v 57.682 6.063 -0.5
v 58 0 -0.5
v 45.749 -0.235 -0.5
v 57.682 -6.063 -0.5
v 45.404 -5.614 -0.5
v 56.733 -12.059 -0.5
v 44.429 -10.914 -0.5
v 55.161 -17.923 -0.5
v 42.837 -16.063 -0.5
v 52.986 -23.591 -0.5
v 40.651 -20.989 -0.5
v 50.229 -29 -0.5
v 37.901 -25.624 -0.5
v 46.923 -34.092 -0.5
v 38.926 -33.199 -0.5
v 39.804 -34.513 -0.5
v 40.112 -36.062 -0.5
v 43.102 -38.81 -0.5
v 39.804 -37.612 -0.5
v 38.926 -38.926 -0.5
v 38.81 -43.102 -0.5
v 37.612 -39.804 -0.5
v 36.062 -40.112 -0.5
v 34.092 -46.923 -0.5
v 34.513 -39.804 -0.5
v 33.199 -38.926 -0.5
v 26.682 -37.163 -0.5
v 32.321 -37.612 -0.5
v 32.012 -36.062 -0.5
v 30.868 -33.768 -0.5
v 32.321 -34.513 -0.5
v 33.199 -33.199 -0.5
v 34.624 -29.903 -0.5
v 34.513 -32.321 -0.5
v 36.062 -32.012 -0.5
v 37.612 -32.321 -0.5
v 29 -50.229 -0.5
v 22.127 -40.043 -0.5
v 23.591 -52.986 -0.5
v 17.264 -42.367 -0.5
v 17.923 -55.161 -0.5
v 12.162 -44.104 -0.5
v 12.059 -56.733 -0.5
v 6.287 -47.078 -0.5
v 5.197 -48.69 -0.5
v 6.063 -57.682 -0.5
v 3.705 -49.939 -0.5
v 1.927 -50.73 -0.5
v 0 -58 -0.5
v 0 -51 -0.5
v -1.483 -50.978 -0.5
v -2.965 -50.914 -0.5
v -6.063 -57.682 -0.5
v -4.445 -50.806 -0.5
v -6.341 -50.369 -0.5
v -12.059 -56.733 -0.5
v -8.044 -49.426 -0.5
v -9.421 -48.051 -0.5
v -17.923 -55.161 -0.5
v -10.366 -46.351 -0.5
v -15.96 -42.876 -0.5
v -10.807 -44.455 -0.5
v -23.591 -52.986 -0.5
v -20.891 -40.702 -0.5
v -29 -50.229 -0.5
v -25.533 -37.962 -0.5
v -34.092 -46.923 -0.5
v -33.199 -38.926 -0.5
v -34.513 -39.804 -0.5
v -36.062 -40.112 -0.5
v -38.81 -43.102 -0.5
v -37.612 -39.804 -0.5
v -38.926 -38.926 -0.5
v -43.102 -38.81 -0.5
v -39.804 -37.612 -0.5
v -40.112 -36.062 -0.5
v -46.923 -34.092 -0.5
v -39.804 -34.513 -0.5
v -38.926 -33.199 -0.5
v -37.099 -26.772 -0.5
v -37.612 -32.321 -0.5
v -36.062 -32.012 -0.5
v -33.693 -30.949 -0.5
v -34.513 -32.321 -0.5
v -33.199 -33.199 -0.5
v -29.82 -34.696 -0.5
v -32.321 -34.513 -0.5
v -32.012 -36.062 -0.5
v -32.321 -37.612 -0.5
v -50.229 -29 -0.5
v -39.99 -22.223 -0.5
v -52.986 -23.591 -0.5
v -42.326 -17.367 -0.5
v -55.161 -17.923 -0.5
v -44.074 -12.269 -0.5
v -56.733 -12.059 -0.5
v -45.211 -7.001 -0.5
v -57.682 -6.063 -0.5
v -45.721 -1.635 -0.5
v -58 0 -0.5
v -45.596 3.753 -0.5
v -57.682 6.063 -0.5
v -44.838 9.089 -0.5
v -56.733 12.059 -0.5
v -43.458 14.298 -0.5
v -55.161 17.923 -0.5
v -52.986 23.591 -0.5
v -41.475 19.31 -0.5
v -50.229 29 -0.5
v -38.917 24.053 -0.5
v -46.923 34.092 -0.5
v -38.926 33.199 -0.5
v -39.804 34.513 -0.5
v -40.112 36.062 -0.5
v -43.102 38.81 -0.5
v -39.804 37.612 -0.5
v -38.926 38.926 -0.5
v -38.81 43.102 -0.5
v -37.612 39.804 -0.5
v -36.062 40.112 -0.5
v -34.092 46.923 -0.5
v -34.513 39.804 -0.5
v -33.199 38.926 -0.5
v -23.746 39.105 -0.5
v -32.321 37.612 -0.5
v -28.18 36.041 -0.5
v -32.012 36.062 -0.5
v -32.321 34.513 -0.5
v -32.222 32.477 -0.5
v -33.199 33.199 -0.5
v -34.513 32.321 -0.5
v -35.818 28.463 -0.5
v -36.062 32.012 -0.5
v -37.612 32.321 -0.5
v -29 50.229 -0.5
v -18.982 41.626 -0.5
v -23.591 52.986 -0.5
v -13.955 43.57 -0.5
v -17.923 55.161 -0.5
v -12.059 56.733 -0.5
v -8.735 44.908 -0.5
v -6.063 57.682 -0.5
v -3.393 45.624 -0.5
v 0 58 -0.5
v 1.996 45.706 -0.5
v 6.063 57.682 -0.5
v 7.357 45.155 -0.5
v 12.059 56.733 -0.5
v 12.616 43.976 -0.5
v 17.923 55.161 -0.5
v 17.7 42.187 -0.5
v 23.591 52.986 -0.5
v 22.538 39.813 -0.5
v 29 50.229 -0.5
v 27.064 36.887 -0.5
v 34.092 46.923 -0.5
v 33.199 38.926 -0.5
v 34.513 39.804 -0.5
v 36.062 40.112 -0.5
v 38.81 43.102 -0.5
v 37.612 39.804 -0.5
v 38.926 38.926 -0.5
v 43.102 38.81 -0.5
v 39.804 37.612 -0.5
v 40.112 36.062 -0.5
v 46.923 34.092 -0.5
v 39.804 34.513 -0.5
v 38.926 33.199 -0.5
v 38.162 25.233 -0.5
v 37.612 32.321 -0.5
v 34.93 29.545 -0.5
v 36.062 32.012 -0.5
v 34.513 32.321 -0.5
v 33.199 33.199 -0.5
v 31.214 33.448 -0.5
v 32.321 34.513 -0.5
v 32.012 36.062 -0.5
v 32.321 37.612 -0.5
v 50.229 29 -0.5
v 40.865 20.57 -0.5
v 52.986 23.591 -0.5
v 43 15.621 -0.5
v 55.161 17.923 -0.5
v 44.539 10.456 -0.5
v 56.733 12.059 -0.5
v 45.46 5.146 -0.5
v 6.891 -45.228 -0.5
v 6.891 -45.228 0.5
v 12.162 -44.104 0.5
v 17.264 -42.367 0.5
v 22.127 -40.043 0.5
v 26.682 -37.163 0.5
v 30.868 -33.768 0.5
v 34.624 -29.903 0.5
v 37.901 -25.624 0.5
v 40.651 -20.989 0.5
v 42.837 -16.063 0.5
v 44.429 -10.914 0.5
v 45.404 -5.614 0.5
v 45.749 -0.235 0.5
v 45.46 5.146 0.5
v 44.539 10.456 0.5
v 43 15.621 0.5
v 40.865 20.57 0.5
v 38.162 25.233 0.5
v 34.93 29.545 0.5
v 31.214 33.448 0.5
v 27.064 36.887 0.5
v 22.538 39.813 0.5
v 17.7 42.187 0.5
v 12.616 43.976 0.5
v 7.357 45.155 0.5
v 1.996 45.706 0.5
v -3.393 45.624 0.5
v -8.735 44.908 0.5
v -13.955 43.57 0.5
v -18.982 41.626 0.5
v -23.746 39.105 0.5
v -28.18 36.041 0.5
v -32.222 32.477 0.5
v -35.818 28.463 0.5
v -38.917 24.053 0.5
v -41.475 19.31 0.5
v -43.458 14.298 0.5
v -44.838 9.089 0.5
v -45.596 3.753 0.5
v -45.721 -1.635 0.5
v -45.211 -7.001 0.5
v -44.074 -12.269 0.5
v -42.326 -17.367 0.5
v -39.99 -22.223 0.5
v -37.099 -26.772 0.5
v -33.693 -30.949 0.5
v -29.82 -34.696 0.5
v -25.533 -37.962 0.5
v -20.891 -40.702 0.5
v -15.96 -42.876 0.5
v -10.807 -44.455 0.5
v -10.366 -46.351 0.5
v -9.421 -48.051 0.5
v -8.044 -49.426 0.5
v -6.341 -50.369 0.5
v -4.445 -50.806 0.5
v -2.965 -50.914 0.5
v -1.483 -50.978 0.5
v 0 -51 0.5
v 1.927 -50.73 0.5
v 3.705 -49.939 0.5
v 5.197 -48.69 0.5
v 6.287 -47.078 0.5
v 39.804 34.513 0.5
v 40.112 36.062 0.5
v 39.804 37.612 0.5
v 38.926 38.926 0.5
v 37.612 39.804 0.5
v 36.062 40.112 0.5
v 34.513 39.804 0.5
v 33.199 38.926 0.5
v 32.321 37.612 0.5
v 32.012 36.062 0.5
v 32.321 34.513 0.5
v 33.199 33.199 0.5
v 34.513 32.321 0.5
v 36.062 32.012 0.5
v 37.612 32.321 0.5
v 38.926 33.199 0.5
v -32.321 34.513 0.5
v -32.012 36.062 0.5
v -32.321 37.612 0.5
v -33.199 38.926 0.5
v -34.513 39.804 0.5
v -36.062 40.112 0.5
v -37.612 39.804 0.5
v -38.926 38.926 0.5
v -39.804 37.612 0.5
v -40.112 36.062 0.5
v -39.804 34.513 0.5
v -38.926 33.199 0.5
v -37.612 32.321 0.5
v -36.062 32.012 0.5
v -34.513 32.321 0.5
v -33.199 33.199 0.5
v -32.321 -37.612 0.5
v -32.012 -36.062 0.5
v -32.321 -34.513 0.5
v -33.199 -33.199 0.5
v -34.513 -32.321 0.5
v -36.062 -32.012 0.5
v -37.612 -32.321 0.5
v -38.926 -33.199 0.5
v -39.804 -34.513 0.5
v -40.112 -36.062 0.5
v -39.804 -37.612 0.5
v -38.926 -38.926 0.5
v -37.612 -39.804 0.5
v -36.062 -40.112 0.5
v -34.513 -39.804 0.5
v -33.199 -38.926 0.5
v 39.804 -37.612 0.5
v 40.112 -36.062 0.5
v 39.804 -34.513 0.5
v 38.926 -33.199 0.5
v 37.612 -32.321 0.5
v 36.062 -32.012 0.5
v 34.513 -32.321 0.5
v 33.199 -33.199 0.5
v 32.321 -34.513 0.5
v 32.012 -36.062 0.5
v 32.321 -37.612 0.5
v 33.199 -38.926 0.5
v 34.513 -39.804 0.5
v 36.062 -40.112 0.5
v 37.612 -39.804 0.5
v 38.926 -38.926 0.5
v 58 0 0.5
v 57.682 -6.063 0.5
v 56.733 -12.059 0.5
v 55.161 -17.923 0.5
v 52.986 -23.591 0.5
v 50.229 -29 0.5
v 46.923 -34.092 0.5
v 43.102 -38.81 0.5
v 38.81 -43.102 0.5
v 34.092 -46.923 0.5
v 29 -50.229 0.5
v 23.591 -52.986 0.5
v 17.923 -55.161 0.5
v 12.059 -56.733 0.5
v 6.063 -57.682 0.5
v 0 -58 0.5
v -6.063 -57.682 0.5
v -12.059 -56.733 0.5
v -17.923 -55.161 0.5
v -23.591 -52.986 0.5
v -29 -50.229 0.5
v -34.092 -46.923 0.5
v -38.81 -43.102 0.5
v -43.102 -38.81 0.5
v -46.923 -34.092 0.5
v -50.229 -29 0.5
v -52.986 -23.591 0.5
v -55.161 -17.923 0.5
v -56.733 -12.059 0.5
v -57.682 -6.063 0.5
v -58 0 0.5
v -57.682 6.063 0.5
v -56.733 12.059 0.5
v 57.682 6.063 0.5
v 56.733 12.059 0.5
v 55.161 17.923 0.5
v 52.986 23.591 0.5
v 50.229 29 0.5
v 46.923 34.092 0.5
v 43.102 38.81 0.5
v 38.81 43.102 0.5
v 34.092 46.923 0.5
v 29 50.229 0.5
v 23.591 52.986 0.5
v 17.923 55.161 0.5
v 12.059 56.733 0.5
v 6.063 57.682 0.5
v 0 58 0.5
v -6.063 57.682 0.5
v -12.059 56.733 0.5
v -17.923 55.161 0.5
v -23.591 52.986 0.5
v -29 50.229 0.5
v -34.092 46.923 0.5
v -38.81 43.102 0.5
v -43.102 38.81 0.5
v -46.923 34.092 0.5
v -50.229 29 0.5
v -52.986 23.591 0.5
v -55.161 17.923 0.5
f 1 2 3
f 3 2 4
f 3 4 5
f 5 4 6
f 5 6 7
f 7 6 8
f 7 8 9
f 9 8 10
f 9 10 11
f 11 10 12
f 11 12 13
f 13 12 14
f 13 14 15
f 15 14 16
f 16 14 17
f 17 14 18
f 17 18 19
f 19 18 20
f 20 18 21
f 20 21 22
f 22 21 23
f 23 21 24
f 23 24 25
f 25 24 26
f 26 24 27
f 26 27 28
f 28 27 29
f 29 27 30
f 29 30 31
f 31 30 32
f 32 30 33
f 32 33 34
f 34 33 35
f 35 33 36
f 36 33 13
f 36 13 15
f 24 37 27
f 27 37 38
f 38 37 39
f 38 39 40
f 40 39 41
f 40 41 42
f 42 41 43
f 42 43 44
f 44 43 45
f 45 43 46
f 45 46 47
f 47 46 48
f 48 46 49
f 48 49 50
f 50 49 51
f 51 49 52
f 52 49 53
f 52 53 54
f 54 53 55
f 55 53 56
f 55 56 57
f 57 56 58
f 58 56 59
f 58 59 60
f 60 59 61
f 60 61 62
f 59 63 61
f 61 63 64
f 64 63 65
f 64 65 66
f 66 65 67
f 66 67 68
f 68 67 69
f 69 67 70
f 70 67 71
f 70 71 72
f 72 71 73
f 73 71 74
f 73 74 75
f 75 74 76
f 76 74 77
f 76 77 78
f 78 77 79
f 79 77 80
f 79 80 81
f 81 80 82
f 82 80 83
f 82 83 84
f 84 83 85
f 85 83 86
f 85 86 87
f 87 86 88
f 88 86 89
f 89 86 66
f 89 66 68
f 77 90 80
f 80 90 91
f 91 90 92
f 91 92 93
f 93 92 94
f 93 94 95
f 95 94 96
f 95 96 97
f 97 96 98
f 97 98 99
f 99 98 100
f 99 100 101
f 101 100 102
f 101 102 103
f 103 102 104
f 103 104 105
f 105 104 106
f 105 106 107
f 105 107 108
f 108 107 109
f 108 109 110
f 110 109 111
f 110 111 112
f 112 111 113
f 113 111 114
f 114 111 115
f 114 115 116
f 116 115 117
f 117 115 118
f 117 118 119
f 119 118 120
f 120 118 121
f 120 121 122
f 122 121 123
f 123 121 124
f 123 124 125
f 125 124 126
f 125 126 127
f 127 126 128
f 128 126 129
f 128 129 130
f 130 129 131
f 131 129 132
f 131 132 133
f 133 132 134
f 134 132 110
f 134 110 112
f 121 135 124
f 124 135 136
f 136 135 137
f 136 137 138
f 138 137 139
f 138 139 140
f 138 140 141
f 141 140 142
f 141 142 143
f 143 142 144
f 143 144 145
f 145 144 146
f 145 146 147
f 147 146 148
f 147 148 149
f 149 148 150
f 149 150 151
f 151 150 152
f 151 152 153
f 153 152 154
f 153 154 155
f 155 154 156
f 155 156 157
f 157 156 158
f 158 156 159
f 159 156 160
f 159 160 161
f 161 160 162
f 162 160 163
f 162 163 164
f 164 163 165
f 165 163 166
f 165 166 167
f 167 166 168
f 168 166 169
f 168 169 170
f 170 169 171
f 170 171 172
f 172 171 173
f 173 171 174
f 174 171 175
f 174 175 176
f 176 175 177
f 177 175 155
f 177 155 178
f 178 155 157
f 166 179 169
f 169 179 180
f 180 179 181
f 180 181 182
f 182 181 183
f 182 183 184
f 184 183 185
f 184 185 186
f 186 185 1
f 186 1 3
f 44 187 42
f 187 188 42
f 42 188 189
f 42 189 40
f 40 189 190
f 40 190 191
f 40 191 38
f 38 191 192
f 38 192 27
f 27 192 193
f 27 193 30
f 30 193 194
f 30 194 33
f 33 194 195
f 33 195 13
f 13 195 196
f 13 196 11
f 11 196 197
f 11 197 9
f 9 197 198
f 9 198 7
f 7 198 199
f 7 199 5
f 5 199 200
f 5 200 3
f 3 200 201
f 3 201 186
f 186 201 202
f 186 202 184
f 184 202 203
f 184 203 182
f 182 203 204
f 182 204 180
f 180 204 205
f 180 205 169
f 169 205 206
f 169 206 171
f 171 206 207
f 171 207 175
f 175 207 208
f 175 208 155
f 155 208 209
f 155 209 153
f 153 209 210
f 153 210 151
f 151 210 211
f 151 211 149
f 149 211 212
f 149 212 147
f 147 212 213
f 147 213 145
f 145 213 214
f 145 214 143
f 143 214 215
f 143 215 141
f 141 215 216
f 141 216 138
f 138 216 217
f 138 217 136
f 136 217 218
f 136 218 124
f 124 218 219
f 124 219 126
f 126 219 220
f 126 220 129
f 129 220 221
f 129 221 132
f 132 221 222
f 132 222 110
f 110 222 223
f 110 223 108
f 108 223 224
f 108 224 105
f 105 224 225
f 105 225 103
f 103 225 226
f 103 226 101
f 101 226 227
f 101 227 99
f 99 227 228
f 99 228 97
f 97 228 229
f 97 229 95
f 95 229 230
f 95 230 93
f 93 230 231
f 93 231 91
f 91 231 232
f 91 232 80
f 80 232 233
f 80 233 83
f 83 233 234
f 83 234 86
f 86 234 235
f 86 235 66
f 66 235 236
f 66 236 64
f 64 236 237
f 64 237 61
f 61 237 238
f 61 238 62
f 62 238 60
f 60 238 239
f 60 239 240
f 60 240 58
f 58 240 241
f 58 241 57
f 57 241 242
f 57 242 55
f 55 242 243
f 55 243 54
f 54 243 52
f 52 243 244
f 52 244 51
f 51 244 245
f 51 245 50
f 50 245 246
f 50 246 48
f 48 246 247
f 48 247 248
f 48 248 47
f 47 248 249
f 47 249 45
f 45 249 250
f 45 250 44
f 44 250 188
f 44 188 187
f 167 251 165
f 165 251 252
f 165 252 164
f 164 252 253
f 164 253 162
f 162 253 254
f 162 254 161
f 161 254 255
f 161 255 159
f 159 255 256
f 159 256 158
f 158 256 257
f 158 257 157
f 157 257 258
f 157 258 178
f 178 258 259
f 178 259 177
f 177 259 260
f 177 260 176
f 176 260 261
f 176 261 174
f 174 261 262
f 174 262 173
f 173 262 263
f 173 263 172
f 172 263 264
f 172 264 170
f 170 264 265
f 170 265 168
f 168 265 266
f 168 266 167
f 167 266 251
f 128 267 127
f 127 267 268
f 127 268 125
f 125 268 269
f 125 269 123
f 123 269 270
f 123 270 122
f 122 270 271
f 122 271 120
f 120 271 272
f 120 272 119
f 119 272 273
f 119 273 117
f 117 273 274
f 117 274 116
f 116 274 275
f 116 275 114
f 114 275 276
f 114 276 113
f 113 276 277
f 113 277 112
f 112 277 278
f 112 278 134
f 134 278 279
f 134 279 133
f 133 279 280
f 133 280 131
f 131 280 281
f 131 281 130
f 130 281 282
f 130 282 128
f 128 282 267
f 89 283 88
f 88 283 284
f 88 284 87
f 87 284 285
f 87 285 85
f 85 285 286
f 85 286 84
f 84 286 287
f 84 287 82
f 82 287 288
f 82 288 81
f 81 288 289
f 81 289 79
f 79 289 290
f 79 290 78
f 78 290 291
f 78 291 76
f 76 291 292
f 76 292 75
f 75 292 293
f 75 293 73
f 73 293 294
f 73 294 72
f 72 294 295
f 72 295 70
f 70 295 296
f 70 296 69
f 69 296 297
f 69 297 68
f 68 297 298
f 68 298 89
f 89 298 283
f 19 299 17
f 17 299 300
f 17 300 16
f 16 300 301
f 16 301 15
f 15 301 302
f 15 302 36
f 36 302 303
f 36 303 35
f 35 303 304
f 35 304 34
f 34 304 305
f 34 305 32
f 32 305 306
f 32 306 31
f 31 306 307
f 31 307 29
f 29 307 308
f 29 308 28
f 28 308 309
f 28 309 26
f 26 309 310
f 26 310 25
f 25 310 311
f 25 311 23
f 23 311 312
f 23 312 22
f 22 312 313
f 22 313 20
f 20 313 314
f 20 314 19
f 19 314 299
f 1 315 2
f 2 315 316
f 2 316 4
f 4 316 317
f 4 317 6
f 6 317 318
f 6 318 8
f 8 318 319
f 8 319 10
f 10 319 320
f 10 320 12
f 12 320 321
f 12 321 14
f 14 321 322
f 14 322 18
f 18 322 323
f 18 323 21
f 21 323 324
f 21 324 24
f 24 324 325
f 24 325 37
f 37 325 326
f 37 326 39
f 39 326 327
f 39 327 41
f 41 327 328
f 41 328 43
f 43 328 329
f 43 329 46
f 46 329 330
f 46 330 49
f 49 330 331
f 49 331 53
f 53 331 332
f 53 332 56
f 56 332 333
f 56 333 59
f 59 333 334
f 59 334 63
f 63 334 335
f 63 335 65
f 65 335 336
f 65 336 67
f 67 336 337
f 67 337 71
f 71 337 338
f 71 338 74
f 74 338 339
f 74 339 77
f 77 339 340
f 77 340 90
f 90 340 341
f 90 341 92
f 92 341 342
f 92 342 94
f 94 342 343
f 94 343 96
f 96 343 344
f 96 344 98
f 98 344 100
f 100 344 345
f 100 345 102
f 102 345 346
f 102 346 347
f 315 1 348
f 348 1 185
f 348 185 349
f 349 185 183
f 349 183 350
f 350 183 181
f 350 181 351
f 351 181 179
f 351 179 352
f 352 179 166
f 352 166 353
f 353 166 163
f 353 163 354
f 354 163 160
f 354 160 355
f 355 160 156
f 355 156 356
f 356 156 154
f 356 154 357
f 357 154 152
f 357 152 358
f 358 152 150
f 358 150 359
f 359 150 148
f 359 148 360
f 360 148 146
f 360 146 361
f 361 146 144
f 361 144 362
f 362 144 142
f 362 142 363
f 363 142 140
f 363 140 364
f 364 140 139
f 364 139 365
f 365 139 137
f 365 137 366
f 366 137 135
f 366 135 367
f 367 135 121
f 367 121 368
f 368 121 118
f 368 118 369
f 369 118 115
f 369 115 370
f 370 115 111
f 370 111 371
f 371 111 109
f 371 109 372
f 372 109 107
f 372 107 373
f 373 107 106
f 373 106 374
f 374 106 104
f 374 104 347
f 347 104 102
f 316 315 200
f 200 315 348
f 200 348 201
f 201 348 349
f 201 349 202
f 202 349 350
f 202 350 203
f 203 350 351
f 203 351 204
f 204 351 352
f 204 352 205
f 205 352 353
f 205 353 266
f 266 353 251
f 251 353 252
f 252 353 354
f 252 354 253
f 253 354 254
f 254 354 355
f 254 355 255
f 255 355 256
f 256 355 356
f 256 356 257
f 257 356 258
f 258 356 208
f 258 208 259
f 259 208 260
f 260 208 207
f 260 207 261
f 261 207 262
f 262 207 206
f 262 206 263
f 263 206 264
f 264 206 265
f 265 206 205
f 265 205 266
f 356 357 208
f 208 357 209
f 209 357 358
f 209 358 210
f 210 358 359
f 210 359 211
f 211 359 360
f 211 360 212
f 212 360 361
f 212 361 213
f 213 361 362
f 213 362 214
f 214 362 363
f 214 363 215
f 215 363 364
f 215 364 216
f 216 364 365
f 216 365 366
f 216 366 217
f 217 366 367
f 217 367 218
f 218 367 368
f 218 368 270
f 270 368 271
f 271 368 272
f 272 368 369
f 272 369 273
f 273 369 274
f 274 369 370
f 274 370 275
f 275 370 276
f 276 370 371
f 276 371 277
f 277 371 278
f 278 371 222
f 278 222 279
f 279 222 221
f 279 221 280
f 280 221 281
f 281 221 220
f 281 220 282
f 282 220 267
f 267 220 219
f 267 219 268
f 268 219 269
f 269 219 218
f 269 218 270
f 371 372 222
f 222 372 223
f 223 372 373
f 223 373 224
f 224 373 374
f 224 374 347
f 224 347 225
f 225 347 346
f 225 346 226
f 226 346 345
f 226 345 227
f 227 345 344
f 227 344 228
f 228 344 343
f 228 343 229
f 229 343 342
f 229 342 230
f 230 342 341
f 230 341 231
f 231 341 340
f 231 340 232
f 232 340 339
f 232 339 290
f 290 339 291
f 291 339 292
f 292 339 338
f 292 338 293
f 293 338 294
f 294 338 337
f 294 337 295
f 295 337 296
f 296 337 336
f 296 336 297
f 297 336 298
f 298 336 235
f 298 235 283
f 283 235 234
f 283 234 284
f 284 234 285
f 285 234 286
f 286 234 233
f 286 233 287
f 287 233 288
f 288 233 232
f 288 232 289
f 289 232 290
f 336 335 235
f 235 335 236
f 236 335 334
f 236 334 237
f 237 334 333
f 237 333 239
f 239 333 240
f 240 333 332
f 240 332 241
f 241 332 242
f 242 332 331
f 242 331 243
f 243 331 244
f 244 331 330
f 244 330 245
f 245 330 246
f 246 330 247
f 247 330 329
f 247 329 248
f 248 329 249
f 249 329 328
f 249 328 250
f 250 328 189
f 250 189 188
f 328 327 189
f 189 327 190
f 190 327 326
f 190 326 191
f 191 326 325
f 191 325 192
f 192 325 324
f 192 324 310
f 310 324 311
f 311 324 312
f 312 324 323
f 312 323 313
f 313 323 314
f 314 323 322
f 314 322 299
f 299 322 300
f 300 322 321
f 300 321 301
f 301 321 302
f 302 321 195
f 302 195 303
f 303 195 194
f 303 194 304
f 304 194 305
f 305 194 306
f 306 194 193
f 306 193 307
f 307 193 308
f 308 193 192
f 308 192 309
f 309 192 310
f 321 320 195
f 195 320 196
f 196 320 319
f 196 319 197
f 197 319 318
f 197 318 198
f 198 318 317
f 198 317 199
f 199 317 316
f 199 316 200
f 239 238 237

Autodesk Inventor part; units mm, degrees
ref_plane "YZ Plane" through (0, 0, 0) normal (1, 0, 0) x (0, 1, 0)
ref_plane "XZ Plane" through (0, 0, 0) normal (0, 1, 0) x (-1, 0, 0)
ref_plane "XY Plane" through (0, 0, 0) normal (0, 0, 1) x (1, 0, 0)
sketch "Эскиз1" plane through (0, 0, 0) normal (0, 0, 1) x (1, 0, 0)
  circle A0 centre (0, 0) radius 58
  arc A1 (6.8914, -45.228) -> (-10.8071, -44.4552) centre (0, 0) ccw
  circle A2 centre (0, 0) radius 51 construction
  circle A3 centre (36.0624, 36.0624) radius 4.05
  circle A4 centre (-36.0624, 36.0624) radius 4.05
  circle A5 centre (-36.0624, -36.0624) radius 4.05
  circle A6 centre (36.0624, -36.0624) radius 4.05
  line L0 (0, 0) -> (0, 51) construction
  line L1 (0, 0) -> (36.0624, 36.0624) construction
  line L2 (0, 0) -> (-36.0624, 36.0624) construction
  line L3 (0, 0) -> (36.0624, -36.0624) construction
  line L4 (0, 0) -> (-36.0624, -36.0624) construction
  line L5 (0, 0) -> (0, -51) construction
  line L6 (0, 0) -> (-4.4449, -50.8059) construction
  arc A7 (-10.8071, -44.4552) -> (-4.4449, -50.8059) centre (-3.8349, -43.8326) ccw
  arc A8 (0, -51) -> (6.8914, -45.228) centre (0, -44) ccw
  arc A9 (-4.4449, -50.8059) -> (0, -51) centre (0, 0) ccw
  dimension "d2" = 102
  dimension "d0" = 116
  dimension "d1" = 91.5
  dimension "d3" = 8.1
  dimension "d4" = 45
  dimension "d5" = 90
  dimension "d6" = 90
  dimension "d7" = 45
  dimension "d8" = 5
  dimension "d9" = 7
  dimension "d10" = 7
extrude "Выдавливание1" add sketch "Эскиз1" along normal mid plane 1
properties part number "75. Прокладка крышки"
